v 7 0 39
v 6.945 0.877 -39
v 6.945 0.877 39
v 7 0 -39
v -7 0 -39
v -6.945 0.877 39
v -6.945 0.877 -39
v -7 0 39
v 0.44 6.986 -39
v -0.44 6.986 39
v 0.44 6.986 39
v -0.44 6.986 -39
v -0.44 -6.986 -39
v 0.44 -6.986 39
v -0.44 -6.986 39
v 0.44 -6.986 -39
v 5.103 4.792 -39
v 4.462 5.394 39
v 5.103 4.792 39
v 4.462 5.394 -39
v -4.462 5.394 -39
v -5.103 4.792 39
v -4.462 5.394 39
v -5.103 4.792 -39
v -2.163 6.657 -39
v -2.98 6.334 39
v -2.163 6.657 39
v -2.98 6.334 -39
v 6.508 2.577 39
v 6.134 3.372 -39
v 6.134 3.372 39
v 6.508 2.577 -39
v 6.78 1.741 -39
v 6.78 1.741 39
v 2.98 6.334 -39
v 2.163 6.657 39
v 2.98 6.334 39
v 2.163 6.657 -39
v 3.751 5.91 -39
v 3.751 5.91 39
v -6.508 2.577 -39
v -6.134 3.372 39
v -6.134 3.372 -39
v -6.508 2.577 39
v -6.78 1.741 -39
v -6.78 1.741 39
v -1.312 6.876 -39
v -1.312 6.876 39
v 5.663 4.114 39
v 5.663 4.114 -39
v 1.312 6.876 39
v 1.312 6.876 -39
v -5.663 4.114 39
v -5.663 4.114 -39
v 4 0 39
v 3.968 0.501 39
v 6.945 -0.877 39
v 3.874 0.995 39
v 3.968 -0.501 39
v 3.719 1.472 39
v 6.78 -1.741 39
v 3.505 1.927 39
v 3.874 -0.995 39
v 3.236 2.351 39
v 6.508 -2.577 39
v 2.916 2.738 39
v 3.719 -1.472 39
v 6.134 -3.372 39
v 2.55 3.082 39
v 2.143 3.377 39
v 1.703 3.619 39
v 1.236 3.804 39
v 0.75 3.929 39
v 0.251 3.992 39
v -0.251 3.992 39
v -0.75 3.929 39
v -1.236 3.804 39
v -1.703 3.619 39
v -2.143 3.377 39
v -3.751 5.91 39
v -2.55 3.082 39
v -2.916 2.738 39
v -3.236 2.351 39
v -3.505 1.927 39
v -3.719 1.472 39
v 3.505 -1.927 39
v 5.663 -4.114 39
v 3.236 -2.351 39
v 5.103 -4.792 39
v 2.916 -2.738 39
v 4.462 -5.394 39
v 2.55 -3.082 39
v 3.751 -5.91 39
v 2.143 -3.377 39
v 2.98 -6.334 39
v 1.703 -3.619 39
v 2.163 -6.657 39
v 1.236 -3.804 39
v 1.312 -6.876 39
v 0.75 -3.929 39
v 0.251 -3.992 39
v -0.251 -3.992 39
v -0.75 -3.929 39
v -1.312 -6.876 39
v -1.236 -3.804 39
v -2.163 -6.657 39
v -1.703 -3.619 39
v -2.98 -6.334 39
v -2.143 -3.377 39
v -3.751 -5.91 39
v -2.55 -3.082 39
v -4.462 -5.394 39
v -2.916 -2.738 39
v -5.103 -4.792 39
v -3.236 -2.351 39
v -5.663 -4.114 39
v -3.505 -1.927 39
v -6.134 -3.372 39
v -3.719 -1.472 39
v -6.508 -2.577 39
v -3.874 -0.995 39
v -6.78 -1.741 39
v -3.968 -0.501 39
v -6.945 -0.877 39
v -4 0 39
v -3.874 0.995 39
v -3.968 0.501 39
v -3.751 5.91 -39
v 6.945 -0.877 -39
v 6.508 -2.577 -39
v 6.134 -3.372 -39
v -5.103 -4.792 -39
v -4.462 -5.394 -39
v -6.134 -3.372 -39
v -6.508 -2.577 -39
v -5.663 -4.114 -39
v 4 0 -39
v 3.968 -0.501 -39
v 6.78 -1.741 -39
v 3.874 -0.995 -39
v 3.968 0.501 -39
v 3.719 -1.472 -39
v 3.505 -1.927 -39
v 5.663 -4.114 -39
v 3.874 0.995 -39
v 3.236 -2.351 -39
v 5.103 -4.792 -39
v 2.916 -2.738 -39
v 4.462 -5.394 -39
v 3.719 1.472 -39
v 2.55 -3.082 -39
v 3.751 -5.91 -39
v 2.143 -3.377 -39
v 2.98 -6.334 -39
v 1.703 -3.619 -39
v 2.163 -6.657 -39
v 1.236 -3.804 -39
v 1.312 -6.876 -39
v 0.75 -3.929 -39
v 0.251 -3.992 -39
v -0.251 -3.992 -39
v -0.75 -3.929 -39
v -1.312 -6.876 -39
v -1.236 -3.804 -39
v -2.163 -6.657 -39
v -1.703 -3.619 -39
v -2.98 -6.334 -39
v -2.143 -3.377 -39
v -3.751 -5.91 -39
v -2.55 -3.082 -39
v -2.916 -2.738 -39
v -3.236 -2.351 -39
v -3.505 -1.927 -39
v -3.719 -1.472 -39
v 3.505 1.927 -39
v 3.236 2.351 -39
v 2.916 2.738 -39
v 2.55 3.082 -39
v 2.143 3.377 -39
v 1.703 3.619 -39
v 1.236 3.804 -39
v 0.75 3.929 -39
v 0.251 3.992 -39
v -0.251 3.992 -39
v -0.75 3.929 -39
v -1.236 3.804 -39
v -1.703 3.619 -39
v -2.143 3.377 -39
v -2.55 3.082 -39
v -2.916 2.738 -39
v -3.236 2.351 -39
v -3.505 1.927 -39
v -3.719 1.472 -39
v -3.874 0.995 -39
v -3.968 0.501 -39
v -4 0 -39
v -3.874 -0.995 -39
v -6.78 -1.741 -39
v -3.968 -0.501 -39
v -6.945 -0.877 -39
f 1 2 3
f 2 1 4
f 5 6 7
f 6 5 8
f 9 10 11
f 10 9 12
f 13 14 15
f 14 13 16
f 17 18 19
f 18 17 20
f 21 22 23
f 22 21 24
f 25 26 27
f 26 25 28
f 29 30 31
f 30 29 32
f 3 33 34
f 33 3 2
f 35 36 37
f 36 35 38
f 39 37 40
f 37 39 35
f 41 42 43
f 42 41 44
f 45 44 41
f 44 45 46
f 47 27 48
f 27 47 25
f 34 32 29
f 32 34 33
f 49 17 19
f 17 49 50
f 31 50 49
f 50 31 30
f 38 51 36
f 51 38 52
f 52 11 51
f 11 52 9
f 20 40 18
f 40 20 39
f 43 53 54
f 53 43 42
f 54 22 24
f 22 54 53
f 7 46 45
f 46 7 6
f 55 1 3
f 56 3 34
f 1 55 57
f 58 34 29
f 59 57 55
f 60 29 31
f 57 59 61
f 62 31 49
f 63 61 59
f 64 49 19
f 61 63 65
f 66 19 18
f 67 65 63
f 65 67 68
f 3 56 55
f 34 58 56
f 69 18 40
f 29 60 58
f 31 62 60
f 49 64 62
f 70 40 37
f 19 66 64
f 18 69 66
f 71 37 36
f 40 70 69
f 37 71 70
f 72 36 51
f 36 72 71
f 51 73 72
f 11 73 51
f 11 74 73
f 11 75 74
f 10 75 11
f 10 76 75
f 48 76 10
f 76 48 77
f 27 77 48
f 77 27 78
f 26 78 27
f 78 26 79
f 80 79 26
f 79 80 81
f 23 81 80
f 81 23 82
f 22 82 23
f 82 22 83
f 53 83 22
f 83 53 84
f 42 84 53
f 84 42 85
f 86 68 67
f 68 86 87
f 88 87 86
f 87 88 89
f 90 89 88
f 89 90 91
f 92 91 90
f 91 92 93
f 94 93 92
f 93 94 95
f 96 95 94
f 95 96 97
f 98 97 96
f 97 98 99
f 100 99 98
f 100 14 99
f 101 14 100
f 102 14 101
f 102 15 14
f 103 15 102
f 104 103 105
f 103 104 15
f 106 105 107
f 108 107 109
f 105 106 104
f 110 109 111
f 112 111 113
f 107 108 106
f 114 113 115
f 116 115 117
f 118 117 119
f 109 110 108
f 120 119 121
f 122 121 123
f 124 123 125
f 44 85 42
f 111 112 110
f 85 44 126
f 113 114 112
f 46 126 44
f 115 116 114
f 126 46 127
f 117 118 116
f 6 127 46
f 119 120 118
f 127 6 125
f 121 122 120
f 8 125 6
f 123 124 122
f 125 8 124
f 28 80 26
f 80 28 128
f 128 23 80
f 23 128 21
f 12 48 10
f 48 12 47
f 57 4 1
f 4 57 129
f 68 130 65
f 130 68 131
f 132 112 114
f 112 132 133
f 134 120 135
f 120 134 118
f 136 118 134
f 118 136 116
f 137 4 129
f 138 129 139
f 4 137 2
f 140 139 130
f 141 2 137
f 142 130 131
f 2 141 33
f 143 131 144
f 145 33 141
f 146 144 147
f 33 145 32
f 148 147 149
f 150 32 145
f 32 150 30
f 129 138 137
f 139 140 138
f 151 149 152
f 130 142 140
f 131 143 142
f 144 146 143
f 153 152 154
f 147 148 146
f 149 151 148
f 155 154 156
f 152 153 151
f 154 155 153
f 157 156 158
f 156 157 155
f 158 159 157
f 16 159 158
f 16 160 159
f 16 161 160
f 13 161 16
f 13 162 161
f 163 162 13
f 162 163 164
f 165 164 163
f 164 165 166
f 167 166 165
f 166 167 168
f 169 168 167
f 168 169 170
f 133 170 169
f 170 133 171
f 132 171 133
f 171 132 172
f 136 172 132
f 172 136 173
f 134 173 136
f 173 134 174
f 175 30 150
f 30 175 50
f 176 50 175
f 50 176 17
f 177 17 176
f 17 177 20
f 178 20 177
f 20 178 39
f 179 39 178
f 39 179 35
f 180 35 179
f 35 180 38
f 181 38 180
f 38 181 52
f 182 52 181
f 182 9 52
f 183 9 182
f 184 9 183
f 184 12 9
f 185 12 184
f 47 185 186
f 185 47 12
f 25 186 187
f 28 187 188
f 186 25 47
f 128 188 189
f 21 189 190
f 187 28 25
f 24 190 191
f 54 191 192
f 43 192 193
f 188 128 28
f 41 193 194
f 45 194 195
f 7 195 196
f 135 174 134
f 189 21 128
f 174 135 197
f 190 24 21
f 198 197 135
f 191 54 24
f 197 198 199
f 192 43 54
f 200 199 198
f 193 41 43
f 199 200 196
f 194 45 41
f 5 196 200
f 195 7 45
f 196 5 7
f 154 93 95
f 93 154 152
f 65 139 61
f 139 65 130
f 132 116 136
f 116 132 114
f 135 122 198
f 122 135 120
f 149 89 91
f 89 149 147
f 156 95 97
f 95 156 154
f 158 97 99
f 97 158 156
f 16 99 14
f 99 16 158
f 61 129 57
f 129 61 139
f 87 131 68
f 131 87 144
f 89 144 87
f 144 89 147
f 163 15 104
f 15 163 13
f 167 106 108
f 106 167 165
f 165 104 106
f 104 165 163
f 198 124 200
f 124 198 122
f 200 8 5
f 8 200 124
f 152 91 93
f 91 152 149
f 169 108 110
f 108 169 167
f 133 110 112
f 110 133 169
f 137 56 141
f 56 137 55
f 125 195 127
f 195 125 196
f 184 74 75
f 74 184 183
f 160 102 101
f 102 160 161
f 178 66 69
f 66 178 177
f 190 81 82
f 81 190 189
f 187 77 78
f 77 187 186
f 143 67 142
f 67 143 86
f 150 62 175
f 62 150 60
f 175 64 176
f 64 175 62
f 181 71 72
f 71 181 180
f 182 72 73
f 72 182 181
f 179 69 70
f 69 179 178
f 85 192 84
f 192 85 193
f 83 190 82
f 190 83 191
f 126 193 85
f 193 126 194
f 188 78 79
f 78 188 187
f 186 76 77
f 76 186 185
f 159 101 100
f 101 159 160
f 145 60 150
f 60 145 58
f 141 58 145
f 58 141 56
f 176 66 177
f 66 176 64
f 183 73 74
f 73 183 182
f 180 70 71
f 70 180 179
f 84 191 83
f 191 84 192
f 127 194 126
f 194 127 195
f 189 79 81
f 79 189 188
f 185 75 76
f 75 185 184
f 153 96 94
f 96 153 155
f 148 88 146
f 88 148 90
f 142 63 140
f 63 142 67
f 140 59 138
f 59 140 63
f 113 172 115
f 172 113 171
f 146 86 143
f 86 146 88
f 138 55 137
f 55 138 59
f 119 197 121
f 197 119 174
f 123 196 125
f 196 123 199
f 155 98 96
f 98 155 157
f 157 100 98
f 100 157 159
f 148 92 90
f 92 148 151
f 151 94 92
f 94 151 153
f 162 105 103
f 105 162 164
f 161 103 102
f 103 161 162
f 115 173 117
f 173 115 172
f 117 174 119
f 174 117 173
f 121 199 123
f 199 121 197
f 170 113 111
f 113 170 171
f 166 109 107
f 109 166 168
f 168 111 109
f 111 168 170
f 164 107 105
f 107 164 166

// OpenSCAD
$fn = 50;


difference() {
	union() {
		translate(v = [0, 0, -39.0000000000]) {
			cylinder(h = 78, r = 7.0000000000);
		}
	}
	union() {
		translate(v = [0, 0, -100.0000000000]) {
			cylinder(h = 200, r = 4);
		}
	}
}
